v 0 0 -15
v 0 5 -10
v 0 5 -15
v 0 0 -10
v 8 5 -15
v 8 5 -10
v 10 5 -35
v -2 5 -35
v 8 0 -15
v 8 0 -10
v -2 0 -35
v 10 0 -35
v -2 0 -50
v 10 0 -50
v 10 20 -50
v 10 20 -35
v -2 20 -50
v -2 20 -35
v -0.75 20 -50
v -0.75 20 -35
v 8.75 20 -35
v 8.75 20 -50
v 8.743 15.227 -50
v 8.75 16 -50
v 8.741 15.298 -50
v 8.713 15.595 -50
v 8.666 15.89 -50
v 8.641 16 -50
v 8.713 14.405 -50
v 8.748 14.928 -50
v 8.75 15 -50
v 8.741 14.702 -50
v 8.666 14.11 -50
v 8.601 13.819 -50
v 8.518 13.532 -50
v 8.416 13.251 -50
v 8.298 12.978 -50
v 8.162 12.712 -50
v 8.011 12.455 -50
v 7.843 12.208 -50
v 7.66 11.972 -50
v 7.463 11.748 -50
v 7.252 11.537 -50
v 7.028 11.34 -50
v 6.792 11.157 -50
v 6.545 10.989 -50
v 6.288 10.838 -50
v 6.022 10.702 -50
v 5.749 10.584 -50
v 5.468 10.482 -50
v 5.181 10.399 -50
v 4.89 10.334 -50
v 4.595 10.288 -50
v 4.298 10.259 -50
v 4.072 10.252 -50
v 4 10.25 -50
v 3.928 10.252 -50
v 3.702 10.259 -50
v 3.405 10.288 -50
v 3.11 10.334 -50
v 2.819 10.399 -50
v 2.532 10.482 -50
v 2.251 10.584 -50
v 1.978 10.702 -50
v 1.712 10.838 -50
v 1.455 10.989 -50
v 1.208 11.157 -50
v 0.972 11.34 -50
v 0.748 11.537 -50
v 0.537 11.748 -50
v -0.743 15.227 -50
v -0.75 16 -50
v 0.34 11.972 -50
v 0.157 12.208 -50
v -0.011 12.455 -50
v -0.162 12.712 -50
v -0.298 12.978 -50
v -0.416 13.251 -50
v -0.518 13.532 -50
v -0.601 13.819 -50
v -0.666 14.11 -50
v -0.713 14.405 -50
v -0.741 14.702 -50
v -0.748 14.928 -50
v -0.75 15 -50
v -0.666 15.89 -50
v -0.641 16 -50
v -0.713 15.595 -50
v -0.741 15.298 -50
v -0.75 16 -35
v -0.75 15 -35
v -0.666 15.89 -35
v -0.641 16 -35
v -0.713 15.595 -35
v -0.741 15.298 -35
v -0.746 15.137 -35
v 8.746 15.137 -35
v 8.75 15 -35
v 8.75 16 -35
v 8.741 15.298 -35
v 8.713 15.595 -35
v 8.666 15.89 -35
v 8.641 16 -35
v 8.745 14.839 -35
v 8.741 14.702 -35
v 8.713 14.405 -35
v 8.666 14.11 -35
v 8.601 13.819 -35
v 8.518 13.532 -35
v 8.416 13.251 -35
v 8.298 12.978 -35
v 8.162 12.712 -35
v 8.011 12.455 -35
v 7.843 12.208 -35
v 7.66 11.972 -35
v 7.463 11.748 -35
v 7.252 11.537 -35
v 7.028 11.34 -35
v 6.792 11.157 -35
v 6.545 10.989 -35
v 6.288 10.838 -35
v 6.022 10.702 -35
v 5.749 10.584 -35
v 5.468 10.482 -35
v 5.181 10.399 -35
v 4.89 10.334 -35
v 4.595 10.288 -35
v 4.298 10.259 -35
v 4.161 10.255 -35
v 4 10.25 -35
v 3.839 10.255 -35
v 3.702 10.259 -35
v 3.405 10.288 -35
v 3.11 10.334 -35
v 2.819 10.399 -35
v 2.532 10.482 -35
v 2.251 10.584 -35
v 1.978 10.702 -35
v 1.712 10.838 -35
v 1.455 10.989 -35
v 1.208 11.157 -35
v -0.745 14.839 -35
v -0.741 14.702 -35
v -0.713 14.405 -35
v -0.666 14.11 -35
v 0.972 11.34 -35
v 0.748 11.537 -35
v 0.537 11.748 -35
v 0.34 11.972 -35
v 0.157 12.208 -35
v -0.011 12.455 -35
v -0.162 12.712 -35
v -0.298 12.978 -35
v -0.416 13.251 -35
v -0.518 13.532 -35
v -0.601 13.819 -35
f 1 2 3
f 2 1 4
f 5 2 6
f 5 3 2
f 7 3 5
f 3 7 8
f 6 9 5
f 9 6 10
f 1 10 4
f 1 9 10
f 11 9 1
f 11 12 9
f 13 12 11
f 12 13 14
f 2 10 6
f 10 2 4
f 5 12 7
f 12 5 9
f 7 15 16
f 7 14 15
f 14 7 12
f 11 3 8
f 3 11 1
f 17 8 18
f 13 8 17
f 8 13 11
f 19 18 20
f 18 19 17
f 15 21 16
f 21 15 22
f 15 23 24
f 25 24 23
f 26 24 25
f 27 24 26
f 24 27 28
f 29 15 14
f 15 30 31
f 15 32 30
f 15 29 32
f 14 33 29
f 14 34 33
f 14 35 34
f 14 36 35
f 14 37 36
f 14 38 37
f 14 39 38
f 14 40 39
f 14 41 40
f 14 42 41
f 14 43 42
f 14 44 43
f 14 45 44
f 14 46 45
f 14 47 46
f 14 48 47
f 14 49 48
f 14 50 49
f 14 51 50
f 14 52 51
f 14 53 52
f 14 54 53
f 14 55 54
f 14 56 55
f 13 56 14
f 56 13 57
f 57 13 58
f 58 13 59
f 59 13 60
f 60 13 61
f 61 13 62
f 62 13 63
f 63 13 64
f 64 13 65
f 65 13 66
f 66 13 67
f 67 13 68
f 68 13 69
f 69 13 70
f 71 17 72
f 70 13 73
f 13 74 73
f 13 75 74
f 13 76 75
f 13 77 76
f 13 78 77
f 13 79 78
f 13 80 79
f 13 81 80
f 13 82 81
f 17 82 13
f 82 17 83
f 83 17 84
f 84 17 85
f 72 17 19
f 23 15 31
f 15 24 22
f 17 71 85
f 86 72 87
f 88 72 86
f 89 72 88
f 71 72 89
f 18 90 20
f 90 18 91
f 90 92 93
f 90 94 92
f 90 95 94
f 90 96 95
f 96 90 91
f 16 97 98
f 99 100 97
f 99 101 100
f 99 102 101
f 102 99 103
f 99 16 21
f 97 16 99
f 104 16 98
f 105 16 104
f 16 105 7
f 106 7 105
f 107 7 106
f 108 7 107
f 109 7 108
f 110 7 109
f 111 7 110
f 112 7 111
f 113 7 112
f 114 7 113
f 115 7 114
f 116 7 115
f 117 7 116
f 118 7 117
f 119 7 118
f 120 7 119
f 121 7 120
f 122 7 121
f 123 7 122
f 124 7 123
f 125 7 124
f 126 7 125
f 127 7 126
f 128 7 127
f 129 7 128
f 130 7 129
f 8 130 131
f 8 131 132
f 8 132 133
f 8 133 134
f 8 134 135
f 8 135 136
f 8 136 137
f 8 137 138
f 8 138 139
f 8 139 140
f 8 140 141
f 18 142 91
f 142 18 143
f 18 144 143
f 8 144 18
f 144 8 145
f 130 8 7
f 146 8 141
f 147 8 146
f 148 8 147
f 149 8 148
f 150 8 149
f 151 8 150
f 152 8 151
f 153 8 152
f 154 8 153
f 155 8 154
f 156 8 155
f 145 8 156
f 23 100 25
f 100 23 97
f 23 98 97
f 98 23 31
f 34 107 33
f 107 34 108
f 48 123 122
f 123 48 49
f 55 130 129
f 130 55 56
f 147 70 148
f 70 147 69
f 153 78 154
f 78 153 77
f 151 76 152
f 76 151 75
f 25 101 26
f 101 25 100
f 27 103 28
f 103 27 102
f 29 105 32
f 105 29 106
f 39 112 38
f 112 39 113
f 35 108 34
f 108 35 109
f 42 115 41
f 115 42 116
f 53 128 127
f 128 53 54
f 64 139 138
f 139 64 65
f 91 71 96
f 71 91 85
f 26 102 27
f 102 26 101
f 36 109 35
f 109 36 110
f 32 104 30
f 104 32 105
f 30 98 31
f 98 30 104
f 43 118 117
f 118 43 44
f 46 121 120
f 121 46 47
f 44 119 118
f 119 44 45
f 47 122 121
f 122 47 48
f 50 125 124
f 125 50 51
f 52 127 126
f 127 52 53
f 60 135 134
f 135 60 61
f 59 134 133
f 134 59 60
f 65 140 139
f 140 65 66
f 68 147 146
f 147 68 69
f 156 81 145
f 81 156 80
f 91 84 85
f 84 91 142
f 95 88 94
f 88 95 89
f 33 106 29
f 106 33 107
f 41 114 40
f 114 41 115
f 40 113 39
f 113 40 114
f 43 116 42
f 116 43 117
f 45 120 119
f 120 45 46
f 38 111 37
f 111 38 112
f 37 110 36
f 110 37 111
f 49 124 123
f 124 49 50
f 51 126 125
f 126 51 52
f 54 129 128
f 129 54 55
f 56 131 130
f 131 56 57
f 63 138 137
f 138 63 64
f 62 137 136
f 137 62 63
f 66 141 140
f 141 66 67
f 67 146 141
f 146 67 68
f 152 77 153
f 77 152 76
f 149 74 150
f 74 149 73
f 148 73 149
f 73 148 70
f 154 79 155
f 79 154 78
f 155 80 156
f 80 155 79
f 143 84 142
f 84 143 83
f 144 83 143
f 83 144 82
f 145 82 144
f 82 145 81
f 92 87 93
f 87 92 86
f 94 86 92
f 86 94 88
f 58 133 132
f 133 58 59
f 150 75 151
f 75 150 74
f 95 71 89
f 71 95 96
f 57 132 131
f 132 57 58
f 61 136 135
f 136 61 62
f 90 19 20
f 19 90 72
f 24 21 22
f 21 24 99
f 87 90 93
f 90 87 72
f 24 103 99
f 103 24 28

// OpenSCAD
$fn = 100;

rotate([-90, 0, 0]) {
    difference() {
        union() { // the rod-aligner itself
            
            translate([0, 10, 0]) {
                cube([8,5,5]); // pulley-toucher       
            }

            hull() { // "fillet" between pulley-toucher and down-wards stick
                translate([0, 15, 0]) {            
                    cube([8,20,5]); 
                }
                translate([-2, 35, 0]) {
                    cube([12, 5, 5]);
                }
            }
            
            translate([-2, 35, 0]) {
                cube([12, 15, 20]); // down-wards stick
            }
            
        }
        
       
        translate([4, 37, 15]) {
            rotate([90, 0, 0]) {
                cylinder(h=50, r=4.75, center=true); // hole in down-wards stick
            }
        } 
        
        translate([-0.75, 34, 16]) { // fudge factor of 1mm to make sure it gets fully "cut out"
                cube([9.5, 20, 40]); // slot in down-wards stick
        }     
    }
}


/*
translate([1.5, 0, -50]) {
    cube([5, 10, 150]); // measurer
}
*/
